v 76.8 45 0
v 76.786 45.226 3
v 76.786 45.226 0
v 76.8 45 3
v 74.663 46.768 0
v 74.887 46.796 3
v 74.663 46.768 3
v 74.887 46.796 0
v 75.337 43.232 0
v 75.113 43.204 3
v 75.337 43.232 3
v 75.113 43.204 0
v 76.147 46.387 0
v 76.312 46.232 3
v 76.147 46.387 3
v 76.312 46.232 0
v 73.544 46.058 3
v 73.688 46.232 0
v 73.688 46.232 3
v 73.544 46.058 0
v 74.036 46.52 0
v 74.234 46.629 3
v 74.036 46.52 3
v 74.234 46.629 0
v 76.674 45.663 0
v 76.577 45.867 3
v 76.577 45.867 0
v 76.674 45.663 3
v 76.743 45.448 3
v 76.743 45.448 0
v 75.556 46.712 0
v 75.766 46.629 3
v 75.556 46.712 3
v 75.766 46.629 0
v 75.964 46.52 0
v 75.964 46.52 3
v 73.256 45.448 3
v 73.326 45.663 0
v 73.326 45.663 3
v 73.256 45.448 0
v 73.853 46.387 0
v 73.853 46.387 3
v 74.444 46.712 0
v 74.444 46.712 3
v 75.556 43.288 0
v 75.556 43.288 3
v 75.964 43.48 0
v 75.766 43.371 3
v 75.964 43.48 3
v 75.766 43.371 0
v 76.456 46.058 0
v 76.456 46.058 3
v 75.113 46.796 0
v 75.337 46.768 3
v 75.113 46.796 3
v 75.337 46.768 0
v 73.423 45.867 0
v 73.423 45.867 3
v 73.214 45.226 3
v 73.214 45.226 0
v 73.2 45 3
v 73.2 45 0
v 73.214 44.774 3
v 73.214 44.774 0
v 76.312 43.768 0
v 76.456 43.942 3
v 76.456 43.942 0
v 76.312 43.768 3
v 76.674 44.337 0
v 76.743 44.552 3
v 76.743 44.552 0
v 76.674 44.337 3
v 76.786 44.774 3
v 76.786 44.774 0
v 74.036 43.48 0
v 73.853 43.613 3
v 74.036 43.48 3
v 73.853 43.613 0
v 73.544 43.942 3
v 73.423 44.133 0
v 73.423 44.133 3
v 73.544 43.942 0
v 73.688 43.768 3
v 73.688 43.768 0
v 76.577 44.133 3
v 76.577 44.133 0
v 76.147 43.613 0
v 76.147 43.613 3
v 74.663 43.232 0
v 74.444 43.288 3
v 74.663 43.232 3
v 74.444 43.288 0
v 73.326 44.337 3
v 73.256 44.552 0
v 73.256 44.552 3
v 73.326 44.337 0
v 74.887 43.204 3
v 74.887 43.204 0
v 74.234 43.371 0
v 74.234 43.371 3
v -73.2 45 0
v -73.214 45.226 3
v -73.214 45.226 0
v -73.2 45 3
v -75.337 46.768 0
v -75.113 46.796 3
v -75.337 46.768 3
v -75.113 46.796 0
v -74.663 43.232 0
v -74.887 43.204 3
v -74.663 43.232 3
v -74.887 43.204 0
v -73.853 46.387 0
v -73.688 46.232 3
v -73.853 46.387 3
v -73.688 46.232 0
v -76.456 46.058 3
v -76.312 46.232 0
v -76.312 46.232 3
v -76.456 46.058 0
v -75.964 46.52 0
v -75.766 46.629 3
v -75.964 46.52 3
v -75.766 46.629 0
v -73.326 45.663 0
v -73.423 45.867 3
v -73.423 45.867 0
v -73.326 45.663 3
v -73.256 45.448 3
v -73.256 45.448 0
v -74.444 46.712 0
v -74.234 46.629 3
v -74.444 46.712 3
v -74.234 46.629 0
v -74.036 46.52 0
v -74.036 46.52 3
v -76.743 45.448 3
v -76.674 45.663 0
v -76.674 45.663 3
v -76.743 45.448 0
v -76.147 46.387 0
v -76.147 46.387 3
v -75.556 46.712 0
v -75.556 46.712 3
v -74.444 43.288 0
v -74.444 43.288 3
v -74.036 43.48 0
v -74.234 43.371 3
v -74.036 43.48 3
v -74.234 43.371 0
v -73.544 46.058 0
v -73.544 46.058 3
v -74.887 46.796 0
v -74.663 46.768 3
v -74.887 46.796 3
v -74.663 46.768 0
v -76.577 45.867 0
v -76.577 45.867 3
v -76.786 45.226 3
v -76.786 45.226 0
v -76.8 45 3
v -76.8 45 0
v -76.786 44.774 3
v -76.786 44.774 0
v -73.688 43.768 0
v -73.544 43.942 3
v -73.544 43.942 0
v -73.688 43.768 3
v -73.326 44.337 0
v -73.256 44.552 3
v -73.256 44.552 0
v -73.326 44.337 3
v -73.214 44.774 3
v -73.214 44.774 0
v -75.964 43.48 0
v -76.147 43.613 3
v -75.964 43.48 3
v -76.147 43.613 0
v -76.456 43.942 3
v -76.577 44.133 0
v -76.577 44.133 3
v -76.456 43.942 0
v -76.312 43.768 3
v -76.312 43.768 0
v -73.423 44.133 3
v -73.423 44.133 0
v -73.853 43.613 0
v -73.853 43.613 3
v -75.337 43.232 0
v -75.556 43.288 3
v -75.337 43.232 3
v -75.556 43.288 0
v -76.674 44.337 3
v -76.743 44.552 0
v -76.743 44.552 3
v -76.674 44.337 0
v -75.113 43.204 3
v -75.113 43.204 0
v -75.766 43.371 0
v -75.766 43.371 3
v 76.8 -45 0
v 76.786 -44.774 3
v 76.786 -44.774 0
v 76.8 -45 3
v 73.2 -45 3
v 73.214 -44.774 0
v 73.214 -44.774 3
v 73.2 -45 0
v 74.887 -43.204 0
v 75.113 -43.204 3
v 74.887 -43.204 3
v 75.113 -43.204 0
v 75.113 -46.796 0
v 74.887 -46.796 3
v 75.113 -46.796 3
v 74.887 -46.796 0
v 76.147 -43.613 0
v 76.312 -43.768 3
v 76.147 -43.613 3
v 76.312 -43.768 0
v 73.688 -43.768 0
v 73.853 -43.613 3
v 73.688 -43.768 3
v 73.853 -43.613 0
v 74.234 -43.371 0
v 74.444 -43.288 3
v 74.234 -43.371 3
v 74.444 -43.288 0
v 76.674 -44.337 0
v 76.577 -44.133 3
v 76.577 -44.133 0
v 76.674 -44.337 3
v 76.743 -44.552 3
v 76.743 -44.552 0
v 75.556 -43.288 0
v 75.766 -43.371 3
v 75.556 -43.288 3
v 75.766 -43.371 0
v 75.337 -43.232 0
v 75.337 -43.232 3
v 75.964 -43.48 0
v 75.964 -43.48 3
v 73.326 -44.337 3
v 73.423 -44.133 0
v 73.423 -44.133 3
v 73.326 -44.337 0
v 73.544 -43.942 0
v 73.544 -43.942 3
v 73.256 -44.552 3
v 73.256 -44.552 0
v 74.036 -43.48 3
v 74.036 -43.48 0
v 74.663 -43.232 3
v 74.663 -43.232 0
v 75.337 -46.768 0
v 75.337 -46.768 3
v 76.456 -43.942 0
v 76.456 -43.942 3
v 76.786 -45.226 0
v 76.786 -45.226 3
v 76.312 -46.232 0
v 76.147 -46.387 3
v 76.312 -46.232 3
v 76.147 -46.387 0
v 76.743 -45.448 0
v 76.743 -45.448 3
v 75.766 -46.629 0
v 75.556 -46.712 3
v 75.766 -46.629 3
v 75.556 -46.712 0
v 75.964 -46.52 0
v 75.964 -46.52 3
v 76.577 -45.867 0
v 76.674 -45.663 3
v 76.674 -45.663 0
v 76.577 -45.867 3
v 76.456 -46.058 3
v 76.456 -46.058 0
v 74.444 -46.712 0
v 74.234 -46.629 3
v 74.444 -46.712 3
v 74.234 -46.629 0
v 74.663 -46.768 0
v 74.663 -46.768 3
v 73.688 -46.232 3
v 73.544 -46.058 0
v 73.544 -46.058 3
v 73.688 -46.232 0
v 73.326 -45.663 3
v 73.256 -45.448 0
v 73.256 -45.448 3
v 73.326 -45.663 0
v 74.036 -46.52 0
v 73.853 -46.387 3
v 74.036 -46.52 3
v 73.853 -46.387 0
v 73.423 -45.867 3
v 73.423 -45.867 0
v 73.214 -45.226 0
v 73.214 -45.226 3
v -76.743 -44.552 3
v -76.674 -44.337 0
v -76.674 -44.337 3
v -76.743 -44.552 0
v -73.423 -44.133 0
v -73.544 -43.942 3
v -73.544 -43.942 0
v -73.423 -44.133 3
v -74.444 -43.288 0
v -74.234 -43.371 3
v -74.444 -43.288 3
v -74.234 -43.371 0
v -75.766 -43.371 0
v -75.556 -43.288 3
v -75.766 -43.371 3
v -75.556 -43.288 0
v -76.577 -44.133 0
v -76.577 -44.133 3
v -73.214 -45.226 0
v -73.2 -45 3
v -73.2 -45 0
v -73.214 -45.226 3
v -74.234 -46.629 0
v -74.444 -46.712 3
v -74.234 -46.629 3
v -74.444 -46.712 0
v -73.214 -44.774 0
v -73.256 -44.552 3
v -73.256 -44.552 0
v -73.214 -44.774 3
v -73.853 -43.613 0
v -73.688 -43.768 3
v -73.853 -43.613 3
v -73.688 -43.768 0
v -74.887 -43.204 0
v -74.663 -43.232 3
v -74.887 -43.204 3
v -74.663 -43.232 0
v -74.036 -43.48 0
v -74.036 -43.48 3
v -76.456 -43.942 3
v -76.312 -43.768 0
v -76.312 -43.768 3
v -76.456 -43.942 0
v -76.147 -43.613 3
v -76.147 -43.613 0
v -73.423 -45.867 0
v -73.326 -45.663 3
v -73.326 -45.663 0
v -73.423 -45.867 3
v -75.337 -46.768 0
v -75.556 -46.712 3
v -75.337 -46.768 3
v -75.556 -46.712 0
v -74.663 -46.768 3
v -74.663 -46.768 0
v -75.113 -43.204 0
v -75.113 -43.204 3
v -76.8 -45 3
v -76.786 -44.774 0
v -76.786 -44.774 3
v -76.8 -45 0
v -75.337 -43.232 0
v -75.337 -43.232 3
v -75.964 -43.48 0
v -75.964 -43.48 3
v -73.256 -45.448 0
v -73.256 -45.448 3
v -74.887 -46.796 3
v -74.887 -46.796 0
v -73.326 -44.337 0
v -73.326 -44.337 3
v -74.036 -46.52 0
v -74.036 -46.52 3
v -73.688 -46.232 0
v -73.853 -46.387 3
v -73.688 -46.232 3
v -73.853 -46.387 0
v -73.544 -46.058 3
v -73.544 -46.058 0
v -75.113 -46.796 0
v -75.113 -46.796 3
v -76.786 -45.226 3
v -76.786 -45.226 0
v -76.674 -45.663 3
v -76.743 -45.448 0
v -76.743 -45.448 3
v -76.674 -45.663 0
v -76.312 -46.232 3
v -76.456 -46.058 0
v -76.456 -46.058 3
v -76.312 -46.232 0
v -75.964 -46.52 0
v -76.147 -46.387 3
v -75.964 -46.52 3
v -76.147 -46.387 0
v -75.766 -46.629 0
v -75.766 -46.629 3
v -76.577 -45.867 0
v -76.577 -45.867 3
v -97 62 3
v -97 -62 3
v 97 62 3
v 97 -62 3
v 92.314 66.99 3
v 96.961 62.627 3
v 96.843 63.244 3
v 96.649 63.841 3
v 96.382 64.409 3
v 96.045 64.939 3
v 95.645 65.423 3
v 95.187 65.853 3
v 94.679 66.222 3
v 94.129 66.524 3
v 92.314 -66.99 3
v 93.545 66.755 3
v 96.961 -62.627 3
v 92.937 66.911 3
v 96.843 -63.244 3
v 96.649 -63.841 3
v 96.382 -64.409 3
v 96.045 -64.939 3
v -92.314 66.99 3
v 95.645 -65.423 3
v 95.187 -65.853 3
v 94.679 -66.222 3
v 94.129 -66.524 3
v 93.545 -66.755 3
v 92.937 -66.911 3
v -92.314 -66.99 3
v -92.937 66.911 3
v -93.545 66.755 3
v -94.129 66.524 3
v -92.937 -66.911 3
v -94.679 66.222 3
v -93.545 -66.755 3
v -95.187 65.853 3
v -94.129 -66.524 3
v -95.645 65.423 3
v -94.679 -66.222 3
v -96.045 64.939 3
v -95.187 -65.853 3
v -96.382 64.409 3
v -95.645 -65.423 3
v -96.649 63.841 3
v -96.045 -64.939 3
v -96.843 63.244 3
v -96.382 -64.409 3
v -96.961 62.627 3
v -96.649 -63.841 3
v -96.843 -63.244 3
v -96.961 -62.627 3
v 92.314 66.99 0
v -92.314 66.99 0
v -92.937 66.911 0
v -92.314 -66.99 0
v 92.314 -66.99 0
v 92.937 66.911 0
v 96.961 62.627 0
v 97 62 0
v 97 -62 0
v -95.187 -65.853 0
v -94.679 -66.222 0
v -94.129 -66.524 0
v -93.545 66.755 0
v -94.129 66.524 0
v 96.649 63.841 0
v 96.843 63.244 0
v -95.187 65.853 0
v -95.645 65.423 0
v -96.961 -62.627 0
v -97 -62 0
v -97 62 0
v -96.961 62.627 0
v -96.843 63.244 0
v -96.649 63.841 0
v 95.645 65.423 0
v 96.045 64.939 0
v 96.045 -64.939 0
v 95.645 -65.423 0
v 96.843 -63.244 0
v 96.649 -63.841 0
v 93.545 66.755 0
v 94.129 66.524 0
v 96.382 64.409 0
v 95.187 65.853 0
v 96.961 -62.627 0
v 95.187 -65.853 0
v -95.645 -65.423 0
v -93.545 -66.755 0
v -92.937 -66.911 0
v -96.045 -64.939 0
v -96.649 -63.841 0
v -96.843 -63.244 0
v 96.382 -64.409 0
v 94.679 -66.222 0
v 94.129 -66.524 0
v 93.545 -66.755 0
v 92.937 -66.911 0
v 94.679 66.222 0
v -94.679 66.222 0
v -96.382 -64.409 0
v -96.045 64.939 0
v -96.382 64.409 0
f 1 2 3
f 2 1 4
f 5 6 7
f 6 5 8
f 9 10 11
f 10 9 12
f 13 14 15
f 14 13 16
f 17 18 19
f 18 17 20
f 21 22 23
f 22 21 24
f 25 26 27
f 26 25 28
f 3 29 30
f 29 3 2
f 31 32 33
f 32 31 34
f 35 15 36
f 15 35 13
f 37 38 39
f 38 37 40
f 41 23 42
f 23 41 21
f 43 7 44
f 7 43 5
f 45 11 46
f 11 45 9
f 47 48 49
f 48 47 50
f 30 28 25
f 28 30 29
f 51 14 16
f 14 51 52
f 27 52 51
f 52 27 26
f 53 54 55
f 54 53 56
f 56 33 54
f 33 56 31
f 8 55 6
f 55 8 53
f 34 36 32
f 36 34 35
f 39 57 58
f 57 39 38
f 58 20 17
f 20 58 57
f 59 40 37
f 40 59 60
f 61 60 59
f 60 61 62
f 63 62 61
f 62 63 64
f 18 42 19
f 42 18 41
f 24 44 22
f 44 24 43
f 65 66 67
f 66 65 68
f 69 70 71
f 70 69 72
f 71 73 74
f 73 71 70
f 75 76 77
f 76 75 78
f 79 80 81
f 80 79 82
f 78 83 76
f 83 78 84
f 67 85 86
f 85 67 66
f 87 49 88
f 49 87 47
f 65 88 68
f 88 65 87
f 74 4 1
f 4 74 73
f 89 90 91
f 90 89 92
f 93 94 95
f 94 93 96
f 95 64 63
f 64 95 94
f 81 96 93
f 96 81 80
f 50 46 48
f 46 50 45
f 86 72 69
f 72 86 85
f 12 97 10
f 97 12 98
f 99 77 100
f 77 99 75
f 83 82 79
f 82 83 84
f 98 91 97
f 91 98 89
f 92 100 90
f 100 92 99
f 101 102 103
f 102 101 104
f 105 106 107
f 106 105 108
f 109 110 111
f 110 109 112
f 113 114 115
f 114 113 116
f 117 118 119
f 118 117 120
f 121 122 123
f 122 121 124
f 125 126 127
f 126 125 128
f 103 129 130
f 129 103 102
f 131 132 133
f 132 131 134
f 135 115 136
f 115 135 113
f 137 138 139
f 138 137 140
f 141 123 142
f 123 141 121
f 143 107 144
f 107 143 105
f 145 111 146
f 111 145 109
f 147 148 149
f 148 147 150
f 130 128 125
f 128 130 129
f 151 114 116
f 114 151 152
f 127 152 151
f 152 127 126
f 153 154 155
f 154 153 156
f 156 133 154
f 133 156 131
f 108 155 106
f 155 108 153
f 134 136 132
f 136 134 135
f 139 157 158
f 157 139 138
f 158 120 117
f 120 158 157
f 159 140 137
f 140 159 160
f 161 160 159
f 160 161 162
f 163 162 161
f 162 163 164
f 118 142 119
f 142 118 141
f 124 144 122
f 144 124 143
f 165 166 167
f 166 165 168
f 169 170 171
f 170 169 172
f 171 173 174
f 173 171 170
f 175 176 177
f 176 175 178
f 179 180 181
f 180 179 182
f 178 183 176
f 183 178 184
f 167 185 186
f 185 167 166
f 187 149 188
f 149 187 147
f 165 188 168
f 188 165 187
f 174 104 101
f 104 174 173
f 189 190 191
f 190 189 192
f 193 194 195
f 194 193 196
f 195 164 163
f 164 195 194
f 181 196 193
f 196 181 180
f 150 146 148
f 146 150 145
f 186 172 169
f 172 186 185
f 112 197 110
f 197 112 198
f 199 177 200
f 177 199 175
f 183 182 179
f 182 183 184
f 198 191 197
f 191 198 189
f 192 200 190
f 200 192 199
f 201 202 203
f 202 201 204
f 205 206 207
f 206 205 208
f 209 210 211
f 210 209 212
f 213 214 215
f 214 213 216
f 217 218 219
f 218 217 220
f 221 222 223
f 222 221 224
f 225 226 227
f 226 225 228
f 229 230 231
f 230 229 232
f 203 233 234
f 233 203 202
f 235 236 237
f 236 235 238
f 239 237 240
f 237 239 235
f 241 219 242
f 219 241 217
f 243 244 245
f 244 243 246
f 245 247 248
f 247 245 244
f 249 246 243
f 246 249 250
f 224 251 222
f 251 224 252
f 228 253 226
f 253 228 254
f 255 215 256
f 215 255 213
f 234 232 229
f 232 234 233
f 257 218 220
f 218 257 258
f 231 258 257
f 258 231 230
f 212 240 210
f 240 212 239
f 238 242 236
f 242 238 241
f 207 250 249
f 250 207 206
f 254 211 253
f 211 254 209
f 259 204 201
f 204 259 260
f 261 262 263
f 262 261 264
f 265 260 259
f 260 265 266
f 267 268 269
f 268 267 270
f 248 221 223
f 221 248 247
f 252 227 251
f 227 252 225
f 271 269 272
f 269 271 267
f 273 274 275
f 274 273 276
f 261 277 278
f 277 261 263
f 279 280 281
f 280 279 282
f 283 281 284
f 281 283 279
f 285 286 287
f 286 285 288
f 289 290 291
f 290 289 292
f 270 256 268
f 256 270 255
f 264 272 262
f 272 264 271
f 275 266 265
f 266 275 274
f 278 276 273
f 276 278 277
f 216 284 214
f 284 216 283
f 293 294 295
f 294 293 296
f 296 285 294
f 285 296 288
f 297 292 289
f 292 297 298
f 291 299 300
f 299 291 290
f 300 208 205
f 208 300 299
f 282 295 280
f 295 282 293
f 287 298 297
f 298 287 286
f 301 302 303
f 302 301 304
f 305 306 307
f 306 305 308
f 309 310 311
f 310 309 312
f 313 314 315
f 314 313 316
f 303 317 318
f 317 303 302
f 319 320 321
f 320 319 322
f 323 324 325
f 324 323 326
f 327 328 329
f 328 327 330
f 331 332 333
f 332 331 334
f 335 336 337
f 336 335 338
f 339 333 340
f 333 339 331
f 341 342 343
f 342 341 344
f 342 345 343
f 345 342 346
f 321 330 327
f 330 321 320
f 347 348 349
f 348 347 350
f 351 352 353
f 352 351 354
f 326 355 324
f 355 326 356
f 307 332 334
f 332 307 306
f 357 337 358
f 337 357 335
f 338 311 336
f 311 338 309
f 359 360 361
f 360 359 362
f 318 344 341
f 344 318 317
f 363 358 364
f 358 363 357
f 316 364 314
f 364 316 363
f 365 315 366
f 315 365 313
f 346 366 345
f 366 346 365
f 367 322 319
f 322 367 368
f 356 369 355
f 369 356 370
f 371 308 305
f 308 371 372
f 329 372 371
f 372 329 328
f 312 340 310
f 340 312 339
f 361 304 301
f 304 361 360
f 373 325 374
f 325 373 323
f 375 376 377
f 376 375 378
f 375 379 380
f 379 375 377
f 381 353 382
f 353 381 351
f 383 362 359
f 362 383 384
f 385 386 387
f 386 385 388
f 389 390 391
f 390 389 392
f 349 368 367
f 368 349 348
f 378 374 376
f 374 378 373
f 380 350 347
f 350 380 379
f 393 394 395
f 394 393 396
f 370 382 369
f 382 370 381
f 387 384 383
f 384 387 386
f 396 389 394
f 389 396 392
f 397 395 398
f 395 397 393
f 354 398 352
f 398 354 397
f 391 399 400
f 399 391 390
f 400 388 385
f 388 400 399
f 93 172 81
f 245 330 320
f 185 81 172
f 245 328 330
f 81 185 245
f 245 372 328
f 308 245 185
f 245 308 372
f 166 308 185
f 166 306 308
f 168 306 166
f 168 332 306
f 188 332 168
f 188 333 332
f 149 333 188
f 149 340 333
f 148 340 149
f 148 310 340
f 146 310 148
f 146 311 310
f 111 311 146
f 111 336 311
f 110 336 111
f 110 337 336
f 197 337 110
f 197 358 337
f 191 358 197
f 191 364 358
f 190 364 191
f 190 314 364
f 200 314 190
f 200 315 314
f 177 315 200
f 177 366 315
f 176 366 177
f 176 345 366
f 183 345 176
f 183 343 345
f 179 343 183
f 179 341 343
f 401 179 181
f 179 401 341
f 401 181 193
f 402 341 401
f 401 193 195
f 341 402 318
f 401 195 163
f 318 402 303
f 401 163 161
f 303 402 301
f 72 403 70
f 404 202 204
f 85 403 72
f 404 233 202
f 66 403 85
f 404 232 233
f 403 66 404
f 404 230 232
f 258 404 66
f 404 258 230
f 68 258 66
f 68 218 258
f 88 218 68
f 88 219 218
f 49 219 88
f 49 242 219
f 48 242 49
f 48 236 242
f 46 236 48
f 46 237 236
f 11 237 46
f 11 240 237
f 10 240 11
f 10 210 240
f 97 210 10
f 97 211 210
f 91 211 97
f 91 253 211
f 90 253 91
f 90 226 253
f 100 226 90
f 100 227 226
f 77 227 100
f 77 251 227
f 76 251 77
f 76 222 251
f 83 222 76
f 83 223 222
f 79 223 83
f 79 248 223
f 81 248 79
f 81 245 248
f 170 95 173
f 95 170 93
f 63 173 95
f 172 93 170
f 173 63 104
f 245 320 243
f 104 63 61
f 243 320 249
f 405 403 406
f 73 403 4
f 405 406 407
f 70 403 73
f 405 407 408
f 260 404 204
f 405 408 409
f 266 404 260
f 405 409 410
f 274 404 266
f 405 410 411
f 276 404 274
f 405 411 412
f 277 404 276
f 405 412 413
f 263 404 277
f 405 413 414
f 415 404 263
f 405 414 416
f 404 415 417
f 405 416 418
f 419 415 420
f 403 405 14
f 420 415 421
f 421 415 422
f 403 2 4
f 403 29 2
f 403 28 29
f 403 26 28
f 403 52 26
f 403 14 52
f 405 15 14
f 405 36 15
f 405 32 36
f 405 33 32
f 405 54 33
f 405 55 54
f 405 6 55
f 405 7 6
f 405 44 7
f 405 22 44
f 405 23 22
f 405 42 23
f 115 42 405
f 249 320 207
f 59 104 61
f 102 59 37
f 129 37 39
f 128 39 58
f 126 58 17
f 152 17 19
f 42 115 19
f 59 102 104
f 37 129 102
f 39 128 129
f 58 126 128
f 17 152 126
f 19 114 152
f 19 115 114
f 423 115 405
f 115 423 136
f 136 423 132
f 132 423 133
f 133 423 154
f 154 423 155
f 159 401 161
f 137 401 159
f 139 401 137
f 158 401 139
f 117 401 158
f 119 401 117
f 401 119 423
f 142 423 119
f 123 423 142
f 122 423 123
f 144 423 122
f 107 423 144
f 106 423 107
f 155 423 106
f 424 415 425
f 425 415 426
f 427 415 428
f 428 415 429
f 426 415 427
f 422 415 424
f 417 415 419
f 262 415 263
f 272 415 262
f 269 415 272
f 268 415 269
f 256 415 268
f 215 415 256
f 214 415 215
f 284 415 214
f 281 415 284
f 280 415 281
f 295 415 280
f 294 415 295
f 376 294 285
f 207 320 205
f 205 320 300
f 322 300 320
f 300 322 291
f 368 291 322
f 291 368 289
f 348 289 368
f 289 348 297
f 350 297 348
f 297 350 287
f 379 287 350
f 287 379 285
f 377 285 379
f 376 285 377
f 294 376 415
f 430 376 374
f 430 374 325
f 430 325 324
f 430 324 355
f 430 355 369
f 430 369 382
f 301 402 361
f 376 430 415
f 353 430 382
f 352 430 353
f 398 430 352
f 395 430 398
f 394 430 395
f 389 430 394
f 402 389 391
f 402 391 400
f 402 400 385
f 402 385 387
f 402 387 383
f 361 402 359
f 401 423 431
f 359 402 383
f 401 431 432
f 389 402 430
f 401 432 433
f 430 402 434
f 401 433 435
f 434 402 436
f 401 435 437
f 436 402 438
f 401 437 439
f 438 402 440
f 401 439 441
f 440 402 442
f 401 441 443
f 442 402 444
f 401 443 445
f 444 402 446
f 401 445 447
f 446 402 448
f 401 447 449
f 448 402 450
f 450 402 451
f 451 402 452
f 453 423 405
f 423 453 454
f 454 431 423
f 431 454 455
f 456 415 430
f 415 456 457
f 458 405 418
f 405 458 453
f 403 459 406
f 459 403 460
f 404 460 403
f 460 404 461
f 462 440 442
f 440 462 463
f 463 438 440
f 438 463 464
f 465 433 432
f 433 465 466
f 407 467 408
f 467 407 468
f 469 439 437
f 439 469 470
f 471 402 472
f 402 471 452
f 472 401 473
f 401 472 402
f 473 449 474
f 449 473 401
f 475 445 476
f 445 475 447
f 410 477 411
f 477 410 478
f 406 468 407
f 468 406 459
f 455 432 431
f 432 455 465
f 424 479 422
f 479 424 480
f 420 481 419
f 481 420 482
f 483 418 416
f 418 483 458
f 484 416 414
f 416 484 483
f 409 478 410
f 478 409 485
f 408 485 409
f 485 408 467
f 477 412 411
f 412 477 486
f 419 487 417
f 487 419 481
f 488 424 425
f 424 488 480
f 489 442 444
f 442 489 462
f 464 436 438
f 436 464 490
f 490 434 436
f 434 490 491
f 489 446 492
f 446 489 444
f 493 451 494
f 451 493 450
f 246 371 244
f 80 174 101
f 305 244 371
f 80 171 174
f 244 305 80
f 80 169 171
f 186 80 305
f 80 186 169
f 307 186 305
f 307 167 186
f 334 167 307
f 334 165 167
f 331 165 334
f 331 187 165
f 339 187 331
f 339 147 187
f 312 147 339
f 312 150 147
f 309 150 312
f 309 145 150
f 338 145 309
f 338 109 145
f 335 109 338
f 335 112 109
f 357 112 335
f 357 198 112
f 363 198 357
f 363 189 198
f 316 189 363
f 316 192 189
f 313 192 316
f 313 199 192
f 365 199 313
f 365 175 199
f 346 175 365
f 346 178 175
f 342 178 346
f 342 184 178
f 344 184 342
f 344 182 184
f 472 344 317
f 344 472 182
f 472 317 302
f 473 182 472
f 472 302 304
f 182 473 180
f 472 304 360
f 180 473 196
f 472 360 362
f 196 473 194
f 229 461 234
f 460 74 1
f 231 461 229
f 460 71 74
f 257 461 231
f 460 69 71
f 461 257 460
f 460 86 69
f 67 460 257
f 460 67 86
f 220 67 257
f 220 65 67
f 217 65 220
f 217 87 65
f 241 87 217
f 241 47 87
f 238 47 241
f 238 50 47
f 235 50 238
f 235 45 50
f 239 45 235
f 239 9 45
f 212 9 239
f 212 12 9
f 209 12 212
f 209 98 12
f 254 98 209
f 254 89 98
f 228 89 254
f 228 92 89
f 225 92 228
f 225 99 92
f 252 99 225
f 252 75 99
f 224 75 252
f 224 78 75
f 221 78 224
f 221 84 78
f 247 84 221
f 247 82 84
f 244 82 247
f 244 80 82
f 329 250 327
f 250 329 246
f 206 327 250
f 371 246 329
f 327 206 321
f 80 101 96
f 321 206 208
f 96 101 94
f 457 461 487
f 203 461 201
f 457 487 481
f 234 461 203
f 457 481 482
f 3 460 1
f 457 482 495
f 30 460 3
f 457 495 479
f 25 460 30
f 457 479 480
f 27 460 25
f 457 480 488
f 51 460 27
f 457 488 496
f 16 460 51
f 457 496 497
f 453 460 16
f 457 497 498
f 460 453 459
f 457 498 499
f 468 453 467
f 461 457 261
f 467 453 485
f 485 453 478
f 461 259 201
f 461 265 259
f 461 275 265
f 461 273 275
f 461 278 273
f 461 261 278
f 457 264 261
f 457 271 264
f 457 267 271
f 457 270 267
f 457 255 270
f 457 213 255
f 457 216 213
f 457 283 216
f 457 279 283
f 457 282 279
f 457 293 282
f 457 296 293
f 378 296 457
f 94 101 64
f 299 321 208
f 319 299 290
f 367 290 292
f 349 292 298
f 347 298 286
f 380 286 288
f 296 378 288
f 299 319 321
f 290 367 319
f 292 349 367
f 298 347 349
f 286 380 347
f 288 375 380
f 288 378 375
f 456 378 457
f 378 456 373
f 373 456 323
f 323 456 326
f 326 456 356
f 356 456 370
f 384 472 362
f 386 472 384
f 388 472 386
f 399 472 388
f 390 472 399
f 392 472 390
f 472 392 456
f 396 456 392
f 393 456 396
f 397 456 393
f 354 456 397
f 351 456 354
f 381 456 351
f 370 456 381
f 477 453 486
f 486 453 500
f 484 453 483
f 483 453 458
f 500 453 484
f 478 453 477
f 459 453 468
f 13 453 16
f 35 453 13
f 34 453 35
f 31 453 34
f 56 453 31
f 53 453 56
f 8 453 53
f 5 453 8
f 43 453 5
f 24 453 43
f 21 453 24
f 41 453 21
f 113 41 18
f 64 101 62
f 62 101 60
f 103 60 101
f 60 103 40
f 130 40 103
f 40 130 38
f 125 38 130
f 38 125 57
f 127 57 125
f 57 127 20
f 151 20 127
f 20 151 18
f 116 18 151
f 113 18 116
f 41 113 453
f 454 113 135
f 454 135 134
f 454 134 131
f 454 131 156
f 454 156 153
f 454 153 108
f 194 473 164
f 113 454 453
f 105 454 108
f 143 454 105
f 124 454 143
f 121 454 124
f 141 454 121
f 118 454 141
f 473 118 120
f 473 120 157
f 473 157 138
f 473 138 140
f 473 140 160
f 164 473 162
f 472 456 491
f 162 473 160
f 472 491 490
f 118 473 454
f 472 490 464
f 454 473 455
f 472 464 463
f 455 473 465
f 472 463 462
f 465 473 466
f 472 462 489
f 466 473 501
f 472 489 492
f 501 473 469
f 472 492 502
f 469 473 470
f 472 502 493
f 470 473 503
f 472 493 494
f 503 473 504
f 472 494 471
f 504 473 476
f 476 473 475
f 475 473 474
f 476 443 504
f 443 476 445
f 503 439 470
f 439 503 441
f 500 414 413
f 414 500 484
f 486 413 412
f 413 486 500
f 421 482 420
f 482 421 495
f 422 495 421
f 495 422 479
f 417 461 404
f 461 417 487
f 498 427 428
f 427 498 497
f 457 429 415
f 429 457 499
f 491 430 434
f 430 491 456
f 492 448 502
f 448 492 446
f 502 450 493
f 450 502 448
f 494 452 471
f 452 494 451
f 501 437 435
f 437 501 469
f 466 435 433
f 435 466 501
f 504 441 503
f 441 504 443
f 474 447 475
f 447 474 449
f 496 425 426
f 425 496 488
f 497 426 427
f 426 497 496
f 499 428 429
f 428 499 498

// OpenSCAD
$fn = 50;


difference() {
	union() {
		translate(v = [0, 0, 0]) {
			rotate(a = [0, 0, 0]) {
				hull() {
					translate(v = [-92.0000000000, 62.0000000000, 0]) {
						rotate(a = [0, 0, 0]) {
							translate(v = [0, 0, 0]) {
								rotate(a = [0, 0, 0]) {
									cylinder(h = 3, r = 5);
								}
							}
						}
					}
					translate(v = [92.0000000000, 62.0000000000, 0]) {
						rotate(a = [0, 0, 0]) {
							translate(v = [0, 0, 0]) {
								rotate(a = [0, 0, 0]) {
									cylinder(h = 3, r = 5);
								}
							}
						}
					}
					translate(v = [-92.0000000000, -62.0000000000, 0]) {
						rotate(a = [0, 0, 0]) {
							translate(v = [0, 0, 0]) {
								rotate(a = [0, 0, 0]) {
									cylinder(h = 3, r = 5);
								}
							}
						}
					}
					translate(v = [92.0000000000, -62.0000000000, 0]) {
						rotate(a = [0, 0, 0]) {
							translate(v = [0, 0, 0]) {
								rotate(a = [0, 0, 0]) {
									cylinder(h = 3, r = 5);
								}
							}
						}
					}
				}
			}
		}
	}
	union() {
		translate(v = [75.0000000000, 45.0000000000, -125.0000000000]) {
			rotate(a = [0, 0, 0]) {
				cylinder(h = 250, r = 1.8000000000);
			}
		}
		translate(v = [-75.0000000000, 45.0000000000, -125.0000000000]) {
			rotate(a = [0, 0, 0]) {
				cylinder(h = 250, r = 1.8000000000);
			}
		}
		translate(v = [75.0000000000, -45.0000000000, -125.0000000000]) {
			rotate(a = [0, 0, 0]) {
				cylinder(h = 250, r = 1.8000000000);
			}
		}
		translate(v = [-75.0000000000, -45.0000000000, -125.0000000000]) {
			rotate(a = [0, 0, 0]) {
				cylinder(h = 250, r = 1.8000000000);
			}
		}
	}
}
